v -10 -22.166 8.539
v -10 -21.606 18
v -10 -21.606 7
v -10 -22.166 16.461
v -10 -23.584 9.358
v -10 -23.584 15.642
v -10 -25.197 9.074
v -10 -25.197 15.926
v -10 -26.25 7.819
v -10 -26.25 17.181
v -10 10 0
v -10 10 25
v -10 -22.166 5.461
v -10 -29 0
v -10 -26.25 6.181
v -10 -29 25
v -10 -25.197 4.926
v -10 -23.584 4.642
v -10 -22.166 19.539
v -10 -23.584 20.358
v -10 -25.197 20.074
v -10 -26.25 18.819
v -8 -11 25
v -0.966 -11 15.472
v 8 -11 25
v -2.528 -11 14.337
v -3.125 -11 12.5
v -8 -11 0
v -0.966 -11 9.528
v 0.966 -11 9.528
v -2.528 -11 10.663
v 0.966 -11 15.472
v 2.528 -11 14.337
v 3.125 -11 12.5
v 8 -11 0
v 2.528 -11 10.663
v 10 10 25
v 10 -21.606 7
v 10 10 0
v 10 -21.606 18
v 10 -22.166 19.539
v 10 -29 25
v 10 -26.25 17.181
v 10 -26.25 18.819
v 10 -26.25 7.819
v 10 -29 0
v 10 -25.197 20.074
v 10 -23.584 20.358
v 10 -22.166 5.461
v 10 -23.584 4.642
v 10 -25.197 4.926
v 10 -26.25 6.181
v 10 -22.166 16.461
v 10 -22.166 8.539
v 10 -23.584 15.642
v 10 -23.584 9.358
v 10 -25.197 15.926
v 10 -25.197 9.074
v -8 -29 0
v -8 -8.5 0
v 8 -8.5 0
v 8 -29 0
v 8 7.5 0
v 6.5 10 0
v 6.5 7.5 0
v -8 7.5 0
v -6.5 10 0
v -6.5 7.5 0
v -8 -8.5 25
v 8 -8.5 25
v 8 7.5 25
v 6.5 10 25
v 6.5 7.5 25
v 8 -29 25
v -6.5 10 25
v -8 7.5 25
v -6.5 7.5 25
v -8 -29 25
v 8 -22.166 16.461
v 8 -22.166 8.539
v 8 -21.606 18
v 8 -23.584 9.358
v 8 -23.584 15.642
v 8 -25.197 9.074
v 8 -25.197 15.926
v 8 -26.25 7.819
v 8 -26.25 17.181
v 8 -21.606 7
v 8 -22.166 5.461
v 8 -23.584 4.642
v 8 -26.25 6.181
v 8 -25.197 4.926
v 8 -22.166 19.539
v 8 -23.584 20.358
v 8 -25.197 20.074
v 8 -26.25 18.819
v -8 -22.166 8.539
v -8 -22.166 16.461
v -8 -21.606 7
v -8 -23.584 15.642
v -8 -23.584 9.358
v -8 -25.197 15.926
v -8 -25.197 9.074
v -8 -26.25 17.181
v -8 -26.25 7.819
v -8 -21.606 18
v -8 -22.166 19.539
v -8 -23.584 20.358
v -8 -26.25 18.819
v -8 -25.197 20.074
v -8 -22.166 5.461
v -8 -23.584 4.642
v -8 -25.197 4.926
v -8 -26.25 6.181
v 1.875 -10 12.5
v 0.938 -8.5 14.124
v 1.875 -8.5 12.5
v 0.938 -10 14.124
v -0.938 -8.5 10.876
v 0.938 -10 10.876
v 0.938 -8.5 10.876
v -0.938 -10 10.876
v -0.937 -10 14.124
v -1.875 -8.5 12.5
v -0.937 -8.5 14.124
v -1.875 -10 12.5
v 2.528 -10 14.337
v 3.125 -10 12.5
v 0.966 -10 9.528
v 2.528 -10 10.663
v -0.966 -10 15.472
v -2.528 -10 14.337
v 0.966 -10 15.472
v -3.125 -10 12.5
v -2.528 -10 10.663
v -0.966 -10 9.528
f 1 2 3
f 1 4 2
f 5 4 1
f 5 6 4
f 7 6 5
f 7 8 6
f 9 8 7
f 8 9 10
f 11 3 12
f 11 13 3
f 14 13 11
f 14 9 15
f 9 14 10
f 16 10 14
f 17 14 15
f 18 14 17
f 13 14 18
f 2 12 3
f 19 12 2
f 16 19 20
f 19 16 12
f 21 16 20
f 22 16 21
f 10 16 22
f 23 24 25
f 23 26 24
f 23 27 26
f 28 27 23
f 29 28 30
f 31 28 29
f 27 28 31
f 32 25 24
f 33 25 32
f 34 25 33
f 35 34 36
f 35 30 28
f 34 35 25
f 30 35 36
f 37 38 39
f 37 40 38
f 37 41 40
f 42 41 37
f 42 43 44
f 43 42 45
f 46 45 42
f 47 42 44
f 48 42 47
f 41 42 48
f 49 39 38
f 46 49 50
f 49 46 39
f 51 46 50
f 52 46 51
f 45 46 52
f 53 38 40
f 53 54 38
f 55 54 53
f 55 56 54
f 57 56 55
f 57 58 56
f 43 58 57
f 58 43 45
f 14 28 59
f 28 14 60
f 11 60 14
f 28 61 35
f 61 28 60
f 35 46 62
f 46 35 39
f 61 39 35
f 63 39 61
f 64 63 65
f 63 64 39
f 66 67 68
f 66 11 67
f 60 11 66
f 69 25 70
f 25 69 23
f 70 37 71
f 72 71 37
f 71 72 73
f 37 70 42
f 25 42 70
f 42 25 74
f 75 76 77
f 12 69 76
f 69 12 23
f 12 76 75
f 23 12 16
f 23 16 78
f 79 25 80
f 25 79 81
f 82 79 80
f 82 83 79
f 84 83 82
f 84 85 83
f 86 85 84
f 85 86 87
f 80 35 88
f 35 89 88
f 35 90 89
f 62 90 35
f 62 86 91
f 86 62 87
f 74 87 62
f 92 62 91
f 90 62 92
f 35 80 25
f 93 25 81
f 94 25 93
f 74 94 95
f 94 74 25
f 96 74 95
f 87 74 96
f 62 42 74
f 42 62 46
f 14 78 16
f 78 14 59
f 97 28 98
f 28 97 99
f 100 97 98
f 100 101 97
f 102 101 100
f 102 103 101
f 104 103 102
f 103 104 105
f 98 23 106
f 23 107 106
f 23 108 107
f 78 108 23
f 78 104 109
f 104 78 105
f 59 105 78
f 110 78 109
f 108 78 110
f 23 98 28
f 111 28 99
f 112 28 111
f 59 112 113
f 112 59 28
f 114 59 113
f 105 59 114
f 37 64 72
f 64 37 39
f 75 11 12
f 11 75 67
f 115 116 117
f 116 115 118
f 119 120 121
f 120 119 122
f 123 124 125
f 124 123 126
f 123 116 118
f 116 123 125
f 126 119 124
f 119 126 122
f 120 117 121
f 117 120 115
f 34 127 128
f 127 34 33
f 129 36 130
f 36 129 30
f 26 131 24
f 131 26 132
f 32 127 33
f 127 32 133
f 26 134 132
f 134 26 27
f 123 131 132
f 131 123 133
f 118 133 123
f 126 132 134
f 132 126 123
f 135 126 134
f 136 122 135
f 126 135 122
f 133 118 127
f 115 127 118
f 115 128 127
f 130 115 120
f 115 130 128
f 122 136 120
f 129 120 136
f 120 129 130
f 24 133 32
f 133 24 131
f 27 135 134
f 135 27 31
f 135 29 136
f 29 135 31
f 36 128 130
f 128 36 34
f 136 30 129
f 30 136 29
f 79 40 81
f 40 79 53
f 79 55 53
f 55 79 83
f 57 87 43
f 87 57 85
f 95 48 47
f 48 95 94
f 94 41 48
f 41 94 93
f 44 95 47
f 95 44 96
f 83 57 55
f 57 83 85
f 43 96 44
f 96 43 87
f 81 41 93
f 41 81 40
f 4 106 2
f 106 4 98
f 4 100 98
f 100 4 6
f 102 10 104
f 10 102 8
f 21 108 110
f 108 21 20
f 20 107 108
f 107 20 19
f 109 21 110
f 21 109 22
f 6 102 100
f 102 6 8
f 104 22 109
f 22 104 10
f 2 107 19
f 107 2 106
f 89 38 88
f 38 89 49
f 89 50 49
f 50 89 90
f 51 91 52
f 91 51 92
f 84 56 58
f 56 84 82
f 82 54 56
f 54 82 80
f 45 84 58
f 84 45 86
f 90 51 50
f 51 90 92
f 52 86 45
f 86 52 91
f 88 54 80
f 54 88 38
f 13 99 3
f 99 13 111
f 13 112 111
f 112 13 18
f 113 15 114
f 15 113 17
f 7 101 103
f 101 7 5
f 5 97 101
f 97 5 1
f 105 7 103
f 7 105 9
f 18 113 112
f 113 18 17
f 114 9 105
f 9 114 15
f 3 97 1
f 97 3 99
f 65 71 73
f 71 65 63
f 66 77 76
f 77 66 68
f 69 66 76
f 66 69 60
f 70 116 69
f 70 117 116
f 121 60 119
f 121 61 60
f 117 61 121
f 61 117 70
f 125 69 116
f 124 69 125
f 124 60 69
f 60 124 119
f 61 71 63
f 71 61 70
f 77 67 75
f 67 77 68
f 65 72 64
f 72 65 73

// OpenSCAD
// Kossel 1515 extrusion cable organizer/clip
// License: CC1.0 Universal

plate_length = 25;
plate_height = 20;

plate_width  = 20;
plate_thickness = 2;

num_drills = 1;
inset_depth = 1.5;
drill_depth = 4;

wall_length = 19;

// Polyholes from: http://hydraraptor.blogspot.com/2011/02/polyholes.html
module polyhole(h, d) {
    n = max(round(2 * d),3);
    rotate([0,0,180])
        cylinder(h = h, r = (d / 2) / cos (180 / n), $fn = n);
}

module openbeam() {
    linear_extrude(rotate = 90, height = 100, center = true, convexity = 10) import (file = "openbeam.dxf");
}


module inset_drills(distance, drill_size, inset_depth) {
    translate([0, distance*20, -drill_depth]) cylinder(r=drill_size/2, h=drill_depth);
    translate([0, distance*20, -1]) cylinder(r=drill_size/1.2, h=inset_depth);
}

module plate() {
    difference() {
      union() {
        // Interface plate (to extrusion)
        cube([plate_thickness, plate_length, plate_height]);
        
        // Bottom plate (where driver shafts exit))
        cube([plate_width, plate_length, plate_thickness]);
          
        // Top plate (driver landing area)
        translate([19-wall_length, 0, plate_height-2]) cube([plate_width, plate_length, plate_thickness]);  
         
        // Top 'ceiling' wall  
        translate([-(wall_length), 0, 10]) cube([wall_length, plate_length, plate_height - 10]); 
          
        // Bottom 'floor' wall
        translate([-(wall_length), 0, 0]) cube([wall_length, plate_length, plate_height - 10]);    
      }
    
      // Mounting plate drills
      #translate([2,  -27.5, 10]) rotate([0,90,0]) inset_drills(2, 3.75, 2);
      
      // Driver drills
      for ( i = [ 1 : num_drills ] ) {
        translate([15, -2, 2]) translate([0, i*20, -3]) polyhole(9, 4.5);
        translate([15, -2, 16]) translate([0, i*20, -3]) polyhole(9, 4.5);
          
        translate([15, -13, 2]) translate([0, i*20, -3]) polyhole(9, 4.5);
        translate([15, -13, 16]) translate([0, i*20, -3]) polyhole(9, 4.5);
      }
      
      // Beam connector
      translate([-(wall_length-2.5), 0, 2]) cube([(wall_length-3), plate_length, 16]);
      
      // Cutout at snap area
      translate([-wall_length, 0, 3.5]) cube([2.5, plate_length, 13]);
    }
}

rotate([0, 90, 180]) {
    rotate([0, 0, 90]) translate([9, 0, -10]) plate();
    //rotate([0, 90, 180]) translate([0, 0, 0]) openbeam();
}
